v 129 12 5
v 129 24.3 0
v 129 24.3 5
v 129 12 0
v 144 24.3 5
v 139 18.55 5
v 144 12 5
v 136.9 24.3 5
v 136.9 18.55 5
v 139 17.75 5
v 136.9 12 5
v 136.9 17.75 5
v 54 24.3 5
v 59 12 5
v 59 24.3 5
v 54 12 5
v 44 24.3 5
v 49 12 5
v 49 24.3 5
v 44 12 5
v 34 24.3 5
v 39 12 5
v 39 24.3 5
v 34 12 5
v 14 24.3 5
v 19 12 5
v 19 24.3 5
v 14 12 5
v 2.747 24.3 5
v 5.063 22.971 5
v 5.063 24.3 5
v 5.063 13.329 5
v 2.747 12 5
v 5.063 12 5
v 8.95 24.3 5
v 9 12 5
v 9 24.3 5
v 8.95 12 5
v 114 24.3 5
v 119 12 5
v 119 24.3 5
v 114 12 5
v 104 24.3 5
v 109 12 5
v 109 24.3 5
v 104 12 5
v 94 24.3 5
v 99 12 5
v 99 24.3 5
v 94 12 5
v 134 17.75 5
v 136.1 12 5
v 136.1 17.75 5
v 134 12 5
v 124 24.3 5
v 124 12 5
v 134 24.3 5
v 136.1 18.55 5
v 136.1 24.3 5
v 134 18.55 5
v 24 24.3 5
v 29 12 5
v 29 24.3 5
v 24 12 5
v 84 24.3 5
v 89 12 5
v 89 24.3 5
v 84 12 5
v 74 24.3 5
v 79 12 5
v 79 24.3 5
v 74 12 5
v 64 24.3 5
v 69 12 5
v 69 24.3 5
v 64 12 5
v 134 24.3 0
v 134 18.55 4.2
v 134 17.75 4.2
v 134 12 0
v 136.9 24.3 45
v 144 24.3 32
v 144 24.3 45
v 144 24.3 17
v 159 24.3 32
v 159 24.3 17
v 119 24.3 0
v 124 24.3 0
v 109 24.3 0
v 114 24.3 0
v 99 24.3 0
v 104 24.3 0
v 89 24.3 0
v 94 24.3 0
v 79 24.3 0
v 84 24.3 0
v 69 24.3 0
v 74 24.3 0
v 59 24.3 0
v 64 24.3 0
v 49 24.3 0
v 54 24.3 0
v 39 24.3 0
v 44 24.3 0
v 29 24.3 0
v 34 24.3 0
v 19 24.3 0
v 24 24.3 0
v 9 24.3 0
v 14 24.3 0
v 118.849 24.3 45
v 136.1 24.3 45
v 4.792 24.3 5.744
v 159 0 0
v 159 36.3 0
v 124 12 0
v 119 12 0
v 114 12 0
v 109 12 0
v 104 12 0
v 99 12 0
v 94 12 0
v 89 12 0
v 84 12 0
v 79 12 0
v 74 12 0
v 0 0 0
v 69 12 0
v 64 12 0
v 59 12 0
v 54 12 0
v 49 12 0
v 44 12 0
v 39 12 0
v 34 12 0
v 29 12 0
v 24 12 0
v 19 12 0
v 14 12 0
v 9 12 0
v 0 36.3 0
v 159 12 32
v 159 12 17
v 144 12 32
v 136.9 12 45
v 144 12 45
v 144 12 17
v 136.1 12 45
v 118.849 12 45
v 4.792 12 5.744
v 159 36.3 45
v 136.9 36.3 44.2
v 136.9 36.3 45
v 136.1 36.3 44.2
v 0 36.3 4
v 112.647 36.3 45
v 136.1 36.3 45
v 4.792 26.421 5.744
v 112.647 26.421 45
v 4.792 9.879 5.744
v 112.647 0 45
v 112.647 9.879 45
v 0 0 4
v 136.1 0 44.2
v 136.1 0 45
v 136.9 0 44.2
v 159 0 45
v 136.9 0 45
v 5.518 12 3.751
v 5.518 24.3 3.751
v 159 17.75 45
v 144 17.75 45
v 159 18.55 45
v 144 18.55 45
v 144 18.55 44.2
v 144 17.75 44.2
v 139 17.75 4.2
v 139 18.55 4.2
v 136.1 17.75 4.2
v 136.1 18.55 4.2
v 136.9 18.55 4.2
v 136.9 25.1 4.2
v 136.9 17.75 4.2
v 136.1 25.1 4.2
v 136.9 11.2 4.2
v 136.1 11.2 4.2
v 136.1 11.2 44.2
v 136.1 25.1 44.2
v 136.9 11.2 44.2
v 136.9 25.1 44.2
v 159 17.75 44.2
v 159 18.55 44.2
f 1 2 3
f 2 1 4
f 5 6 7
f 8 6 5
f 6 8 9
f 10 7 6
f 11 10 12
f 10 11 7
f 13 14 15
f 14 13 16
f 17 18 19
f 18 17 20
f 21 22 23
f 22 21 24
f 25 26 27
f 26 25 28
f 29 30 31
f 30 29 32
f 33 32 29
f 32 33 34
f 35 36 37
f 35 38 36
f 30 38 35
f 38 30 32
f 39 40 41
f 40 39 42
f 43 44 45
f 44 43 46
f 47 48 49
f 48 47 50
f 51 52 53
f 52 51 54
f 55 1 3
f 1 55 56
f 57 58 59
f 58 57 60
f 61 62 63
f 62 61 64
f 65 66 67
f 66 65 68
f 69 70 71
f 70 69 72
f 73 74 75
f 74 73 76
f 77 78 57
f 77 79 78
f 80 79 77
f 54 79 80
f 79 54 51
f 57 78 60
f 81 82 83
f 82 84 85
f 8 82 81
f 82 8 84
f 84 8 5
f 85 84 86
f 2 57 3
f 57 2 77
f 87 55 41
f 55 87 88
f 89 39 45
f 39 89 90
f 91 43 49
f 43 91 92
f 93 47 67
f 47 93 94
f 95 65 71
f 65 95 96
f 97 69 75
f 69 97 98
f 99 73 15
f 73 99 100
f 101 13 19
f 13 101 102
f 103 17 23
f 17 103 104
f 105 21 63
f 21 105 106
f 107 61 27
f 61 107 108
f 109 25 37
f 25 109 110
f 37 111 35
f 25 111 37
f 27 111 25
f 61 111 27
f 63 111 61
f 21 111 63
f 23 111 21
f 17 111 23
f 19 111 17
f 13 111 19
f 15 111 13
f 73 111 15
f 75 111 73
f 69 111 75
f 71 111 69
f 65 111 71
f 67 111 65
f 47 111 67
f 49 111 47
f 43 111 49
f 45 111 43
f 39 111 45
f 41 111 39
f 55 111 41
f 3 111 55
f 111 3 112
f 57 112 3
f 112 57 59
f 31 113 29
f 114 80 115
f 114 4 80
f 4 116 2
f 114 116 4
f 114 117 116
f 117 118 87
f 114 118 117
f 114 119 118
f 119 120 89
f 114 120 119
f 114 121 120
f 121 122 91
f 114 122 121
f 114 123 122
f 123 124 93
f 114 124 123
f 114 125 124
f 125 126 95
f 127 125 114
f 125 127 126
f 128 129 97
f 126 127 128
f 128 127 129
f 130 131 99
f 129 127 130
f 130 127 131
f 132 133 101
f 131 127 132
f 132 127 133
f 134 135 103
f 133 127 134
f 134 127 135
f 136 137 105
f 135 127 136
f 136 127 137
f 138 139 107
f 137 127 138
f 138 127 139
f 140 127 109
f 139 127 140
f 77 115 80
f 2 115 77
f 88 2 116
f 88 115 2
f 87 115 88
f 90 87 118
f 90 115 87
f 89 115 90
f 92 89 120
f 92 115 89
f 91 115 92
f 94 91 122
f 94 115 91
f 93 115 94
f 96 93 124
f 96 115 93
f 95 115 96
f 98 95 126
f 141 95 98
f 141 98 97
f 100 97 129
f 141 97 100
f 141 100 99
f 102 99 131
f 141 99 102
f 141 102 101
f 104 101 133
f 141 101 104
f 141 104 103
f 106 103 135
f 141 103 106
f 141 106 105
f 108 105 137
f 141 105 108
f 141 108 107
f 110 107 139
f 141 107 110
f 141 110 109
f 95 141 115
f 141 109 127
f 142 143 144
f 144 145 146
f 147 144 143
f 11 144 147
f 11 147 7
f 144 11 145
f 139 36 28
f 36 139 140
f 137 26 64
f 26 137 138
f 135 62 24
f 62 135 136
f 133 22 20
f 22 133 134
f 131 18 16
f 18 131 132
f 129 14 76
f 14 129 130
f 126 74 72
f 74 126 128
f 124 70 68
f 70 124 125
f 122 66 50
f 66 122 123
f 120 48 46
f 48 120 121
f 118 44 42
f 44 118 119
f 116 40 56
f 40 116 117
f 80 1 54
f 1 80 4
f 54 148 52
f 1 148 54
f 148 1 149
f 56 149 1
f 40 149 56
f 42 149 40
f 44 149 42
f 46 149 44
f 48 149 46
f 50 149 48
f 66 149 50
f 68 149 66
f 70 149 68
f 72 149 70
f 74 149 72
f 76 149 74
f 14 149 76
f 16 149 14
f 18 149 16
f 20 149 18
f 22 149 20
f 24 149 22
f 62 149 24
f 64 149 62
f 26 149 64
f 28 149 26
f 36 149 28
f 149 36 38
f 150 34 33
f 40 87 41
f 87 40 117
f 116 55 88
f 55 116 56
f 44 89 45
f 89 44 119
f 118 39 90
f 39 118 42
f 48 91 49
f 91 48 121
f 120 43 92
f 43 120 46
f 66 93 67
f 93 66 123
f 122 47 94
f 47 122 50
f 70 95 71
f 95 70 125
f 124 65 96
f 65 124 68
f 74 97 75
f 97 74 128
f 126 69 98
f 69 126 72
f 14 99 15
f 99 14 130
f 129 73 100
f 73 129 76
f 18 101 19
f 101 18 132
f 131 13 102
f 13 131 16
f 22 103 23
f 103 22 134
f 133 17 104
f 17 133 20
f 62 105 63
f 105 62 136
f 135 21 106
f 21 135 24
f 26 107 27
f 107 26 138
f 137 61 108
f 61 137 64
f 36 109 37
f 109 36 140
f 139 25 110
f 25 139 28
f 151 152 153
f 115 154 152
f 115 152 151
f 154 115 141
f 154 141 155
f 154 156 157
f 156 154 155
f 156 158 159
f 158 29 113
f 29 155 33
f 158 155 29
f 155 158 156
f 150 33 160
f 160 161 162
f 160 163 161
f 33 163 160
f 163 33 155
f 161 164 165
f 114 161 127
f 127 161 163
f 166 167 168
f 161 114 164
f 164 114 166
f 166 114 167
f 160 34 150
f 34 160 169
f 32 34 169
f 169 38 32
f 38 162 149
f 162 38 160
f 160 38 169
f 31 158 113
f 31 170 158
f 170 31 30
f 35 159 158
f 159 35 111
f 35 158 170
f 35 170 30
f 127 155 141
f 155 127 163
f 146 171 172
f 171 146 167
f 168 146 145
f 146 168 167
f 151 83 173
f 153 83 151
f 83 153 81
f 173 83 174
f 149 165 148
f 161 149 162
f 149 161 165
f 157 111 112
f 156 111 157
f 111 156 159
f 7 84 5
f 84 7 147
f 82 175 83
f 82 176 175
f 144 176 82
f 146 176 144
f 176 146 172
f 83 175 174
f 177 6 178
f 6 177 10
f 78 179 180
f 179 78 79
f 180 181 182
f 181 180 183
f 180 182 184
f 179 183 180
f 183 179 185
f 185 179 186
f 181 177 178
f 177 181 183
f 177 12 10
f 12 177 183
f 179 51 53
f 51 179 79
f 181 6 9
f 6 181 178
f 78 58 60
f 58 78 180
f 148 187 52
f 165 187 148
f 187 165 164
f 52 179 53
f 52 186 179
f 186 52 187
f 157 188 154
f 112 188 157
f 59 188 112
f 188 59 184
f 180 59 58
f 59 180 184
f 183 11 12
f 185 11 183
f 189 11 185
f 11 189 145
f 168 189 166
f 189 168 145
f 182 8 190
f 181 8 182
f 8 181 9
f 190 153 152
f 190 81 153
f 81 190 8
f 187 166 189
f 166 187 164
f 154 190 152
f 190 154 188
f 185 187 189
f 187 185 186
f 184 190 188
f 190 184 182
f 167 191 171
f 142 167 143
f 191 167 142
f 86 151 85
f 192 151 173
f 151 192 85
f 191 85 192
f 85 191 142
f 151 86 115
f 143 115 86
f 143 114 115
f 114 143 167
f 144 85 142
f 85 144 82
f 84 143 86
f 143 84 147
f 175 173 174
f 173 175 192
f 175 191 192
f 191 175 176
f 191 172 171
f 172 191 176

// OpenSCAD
// Copyright 2024 Martin Scheidt (Attribution 4.0 International, CC-BY 4.0)
//
// You are free to copy and redistribute the material in any medium or format.
// You are free to remix, transform, and build upon the material for any purpose, even commercially.
// You must give appropriate credit, provide a link to the license, and indicate if changes were made.
// You may not apply legal terms or technological measures that legally restrict others from doing anything the license permits.
// No warranties are given.

include<./specification_of_components.scad>

module diagonal_cutout(){
    translate([0,0,4])rotate([0,-20,0]) union(){
        cube([150, dsb_depth, 60]);
        // chamfer
        translate([155/2+2.6,dsc_y_pos,0])rotate([45,0,0])cube([150, 3, 3], center=true);
        translate([155/2+2.6,dsc_y_pos+dsc_depth,0])rotate([45,0,0])cube([150, 3, 3], center=true);
    }
}

module connector_space(){
difference(){
    cube([dsc_connector_width, dsb_depth, dsb_height]);
    translate([0,dsc_y_pos, dsc_connector_z_pos]) cube([dsc_connector_width,dsc_depth, dsc_connector_height]);
    translate([0, dsc_y_pos+(dsc_depth-thin_line)/2, dsb_height-thin_line]) cube([dsc_connector_width,thin_line,thin_line]);
}
}
module template_straight(){
difference(){
    cube([straight_length, dsb_depth, dsb_height]);
    //straight
    translate([0,dsc_y_pos,dsg_thickness]) cube([straight_length, dsc_depth, dsb_height]);
    // ground holes
    for (x=[straight_length-3*dsg_hole_depth : -10 : 5]){
        translate([x,dsc_y_pos,0]) cube([dsg_hole_depth,dsc_depth,dsg_thickness]);
    }
    diagonal_cutout();
   
    
    // hole position lines
    translate([straight_length-2*dsg_hole_depth, dsc_y_pos+(dsc_depth-thin_line)/2, dsg_thickness-thin_line]) cube([dsg_hole_depth,thin_line,thin_line]);
    translate([straight_length-dsh_x_pos-thin_line/2, dsc_y_pos, dsg_thickness-thin_line])cube([thin_line, dsc_depth, thin_line]);
    translate([straight_length-dsh_x_pos-thin_line/2, dsc_y_pos-dsc_depth, dsb_height-thin_line])cube([thin_line, dsc_depth, thin_line]);
    translate([straight_length-dsh_x_pos-thin_line/2, dsc_y_pos+dsc_depth, dsb_height-thin_line])cube([thin_line, dsc_depth, thin_line]);
    translate([straight_length-dsh_x_pos-thin_line/2, dsc_y_pos-thin_line, dsg_thickness-thin_line]) cube([thin_line, thin_line, dsb_height]);
    translate([straight_length-dsh_x_pos-thin_line/2, dsc_y_pos+dsc_depth, dsg_thickness-thin_line]) cube([thin_line, thin_line, dsb_height]);
    
}
//connector
translate([straight_length,0, 0]) connector_space();
//translate([-dsc_supporting_surface_width, dsc_y_pos, 0]) cube([dsc_supporting_surface_width, rail_height+move_tolerance, dsg_thickness]);
}

module test_print(){
    difference(){
        template_straight();
        cube([straight_length-30,50,50]);
    }
}

template_straight();
//diagonal_cutout();
//connector_space();
//test_print();
